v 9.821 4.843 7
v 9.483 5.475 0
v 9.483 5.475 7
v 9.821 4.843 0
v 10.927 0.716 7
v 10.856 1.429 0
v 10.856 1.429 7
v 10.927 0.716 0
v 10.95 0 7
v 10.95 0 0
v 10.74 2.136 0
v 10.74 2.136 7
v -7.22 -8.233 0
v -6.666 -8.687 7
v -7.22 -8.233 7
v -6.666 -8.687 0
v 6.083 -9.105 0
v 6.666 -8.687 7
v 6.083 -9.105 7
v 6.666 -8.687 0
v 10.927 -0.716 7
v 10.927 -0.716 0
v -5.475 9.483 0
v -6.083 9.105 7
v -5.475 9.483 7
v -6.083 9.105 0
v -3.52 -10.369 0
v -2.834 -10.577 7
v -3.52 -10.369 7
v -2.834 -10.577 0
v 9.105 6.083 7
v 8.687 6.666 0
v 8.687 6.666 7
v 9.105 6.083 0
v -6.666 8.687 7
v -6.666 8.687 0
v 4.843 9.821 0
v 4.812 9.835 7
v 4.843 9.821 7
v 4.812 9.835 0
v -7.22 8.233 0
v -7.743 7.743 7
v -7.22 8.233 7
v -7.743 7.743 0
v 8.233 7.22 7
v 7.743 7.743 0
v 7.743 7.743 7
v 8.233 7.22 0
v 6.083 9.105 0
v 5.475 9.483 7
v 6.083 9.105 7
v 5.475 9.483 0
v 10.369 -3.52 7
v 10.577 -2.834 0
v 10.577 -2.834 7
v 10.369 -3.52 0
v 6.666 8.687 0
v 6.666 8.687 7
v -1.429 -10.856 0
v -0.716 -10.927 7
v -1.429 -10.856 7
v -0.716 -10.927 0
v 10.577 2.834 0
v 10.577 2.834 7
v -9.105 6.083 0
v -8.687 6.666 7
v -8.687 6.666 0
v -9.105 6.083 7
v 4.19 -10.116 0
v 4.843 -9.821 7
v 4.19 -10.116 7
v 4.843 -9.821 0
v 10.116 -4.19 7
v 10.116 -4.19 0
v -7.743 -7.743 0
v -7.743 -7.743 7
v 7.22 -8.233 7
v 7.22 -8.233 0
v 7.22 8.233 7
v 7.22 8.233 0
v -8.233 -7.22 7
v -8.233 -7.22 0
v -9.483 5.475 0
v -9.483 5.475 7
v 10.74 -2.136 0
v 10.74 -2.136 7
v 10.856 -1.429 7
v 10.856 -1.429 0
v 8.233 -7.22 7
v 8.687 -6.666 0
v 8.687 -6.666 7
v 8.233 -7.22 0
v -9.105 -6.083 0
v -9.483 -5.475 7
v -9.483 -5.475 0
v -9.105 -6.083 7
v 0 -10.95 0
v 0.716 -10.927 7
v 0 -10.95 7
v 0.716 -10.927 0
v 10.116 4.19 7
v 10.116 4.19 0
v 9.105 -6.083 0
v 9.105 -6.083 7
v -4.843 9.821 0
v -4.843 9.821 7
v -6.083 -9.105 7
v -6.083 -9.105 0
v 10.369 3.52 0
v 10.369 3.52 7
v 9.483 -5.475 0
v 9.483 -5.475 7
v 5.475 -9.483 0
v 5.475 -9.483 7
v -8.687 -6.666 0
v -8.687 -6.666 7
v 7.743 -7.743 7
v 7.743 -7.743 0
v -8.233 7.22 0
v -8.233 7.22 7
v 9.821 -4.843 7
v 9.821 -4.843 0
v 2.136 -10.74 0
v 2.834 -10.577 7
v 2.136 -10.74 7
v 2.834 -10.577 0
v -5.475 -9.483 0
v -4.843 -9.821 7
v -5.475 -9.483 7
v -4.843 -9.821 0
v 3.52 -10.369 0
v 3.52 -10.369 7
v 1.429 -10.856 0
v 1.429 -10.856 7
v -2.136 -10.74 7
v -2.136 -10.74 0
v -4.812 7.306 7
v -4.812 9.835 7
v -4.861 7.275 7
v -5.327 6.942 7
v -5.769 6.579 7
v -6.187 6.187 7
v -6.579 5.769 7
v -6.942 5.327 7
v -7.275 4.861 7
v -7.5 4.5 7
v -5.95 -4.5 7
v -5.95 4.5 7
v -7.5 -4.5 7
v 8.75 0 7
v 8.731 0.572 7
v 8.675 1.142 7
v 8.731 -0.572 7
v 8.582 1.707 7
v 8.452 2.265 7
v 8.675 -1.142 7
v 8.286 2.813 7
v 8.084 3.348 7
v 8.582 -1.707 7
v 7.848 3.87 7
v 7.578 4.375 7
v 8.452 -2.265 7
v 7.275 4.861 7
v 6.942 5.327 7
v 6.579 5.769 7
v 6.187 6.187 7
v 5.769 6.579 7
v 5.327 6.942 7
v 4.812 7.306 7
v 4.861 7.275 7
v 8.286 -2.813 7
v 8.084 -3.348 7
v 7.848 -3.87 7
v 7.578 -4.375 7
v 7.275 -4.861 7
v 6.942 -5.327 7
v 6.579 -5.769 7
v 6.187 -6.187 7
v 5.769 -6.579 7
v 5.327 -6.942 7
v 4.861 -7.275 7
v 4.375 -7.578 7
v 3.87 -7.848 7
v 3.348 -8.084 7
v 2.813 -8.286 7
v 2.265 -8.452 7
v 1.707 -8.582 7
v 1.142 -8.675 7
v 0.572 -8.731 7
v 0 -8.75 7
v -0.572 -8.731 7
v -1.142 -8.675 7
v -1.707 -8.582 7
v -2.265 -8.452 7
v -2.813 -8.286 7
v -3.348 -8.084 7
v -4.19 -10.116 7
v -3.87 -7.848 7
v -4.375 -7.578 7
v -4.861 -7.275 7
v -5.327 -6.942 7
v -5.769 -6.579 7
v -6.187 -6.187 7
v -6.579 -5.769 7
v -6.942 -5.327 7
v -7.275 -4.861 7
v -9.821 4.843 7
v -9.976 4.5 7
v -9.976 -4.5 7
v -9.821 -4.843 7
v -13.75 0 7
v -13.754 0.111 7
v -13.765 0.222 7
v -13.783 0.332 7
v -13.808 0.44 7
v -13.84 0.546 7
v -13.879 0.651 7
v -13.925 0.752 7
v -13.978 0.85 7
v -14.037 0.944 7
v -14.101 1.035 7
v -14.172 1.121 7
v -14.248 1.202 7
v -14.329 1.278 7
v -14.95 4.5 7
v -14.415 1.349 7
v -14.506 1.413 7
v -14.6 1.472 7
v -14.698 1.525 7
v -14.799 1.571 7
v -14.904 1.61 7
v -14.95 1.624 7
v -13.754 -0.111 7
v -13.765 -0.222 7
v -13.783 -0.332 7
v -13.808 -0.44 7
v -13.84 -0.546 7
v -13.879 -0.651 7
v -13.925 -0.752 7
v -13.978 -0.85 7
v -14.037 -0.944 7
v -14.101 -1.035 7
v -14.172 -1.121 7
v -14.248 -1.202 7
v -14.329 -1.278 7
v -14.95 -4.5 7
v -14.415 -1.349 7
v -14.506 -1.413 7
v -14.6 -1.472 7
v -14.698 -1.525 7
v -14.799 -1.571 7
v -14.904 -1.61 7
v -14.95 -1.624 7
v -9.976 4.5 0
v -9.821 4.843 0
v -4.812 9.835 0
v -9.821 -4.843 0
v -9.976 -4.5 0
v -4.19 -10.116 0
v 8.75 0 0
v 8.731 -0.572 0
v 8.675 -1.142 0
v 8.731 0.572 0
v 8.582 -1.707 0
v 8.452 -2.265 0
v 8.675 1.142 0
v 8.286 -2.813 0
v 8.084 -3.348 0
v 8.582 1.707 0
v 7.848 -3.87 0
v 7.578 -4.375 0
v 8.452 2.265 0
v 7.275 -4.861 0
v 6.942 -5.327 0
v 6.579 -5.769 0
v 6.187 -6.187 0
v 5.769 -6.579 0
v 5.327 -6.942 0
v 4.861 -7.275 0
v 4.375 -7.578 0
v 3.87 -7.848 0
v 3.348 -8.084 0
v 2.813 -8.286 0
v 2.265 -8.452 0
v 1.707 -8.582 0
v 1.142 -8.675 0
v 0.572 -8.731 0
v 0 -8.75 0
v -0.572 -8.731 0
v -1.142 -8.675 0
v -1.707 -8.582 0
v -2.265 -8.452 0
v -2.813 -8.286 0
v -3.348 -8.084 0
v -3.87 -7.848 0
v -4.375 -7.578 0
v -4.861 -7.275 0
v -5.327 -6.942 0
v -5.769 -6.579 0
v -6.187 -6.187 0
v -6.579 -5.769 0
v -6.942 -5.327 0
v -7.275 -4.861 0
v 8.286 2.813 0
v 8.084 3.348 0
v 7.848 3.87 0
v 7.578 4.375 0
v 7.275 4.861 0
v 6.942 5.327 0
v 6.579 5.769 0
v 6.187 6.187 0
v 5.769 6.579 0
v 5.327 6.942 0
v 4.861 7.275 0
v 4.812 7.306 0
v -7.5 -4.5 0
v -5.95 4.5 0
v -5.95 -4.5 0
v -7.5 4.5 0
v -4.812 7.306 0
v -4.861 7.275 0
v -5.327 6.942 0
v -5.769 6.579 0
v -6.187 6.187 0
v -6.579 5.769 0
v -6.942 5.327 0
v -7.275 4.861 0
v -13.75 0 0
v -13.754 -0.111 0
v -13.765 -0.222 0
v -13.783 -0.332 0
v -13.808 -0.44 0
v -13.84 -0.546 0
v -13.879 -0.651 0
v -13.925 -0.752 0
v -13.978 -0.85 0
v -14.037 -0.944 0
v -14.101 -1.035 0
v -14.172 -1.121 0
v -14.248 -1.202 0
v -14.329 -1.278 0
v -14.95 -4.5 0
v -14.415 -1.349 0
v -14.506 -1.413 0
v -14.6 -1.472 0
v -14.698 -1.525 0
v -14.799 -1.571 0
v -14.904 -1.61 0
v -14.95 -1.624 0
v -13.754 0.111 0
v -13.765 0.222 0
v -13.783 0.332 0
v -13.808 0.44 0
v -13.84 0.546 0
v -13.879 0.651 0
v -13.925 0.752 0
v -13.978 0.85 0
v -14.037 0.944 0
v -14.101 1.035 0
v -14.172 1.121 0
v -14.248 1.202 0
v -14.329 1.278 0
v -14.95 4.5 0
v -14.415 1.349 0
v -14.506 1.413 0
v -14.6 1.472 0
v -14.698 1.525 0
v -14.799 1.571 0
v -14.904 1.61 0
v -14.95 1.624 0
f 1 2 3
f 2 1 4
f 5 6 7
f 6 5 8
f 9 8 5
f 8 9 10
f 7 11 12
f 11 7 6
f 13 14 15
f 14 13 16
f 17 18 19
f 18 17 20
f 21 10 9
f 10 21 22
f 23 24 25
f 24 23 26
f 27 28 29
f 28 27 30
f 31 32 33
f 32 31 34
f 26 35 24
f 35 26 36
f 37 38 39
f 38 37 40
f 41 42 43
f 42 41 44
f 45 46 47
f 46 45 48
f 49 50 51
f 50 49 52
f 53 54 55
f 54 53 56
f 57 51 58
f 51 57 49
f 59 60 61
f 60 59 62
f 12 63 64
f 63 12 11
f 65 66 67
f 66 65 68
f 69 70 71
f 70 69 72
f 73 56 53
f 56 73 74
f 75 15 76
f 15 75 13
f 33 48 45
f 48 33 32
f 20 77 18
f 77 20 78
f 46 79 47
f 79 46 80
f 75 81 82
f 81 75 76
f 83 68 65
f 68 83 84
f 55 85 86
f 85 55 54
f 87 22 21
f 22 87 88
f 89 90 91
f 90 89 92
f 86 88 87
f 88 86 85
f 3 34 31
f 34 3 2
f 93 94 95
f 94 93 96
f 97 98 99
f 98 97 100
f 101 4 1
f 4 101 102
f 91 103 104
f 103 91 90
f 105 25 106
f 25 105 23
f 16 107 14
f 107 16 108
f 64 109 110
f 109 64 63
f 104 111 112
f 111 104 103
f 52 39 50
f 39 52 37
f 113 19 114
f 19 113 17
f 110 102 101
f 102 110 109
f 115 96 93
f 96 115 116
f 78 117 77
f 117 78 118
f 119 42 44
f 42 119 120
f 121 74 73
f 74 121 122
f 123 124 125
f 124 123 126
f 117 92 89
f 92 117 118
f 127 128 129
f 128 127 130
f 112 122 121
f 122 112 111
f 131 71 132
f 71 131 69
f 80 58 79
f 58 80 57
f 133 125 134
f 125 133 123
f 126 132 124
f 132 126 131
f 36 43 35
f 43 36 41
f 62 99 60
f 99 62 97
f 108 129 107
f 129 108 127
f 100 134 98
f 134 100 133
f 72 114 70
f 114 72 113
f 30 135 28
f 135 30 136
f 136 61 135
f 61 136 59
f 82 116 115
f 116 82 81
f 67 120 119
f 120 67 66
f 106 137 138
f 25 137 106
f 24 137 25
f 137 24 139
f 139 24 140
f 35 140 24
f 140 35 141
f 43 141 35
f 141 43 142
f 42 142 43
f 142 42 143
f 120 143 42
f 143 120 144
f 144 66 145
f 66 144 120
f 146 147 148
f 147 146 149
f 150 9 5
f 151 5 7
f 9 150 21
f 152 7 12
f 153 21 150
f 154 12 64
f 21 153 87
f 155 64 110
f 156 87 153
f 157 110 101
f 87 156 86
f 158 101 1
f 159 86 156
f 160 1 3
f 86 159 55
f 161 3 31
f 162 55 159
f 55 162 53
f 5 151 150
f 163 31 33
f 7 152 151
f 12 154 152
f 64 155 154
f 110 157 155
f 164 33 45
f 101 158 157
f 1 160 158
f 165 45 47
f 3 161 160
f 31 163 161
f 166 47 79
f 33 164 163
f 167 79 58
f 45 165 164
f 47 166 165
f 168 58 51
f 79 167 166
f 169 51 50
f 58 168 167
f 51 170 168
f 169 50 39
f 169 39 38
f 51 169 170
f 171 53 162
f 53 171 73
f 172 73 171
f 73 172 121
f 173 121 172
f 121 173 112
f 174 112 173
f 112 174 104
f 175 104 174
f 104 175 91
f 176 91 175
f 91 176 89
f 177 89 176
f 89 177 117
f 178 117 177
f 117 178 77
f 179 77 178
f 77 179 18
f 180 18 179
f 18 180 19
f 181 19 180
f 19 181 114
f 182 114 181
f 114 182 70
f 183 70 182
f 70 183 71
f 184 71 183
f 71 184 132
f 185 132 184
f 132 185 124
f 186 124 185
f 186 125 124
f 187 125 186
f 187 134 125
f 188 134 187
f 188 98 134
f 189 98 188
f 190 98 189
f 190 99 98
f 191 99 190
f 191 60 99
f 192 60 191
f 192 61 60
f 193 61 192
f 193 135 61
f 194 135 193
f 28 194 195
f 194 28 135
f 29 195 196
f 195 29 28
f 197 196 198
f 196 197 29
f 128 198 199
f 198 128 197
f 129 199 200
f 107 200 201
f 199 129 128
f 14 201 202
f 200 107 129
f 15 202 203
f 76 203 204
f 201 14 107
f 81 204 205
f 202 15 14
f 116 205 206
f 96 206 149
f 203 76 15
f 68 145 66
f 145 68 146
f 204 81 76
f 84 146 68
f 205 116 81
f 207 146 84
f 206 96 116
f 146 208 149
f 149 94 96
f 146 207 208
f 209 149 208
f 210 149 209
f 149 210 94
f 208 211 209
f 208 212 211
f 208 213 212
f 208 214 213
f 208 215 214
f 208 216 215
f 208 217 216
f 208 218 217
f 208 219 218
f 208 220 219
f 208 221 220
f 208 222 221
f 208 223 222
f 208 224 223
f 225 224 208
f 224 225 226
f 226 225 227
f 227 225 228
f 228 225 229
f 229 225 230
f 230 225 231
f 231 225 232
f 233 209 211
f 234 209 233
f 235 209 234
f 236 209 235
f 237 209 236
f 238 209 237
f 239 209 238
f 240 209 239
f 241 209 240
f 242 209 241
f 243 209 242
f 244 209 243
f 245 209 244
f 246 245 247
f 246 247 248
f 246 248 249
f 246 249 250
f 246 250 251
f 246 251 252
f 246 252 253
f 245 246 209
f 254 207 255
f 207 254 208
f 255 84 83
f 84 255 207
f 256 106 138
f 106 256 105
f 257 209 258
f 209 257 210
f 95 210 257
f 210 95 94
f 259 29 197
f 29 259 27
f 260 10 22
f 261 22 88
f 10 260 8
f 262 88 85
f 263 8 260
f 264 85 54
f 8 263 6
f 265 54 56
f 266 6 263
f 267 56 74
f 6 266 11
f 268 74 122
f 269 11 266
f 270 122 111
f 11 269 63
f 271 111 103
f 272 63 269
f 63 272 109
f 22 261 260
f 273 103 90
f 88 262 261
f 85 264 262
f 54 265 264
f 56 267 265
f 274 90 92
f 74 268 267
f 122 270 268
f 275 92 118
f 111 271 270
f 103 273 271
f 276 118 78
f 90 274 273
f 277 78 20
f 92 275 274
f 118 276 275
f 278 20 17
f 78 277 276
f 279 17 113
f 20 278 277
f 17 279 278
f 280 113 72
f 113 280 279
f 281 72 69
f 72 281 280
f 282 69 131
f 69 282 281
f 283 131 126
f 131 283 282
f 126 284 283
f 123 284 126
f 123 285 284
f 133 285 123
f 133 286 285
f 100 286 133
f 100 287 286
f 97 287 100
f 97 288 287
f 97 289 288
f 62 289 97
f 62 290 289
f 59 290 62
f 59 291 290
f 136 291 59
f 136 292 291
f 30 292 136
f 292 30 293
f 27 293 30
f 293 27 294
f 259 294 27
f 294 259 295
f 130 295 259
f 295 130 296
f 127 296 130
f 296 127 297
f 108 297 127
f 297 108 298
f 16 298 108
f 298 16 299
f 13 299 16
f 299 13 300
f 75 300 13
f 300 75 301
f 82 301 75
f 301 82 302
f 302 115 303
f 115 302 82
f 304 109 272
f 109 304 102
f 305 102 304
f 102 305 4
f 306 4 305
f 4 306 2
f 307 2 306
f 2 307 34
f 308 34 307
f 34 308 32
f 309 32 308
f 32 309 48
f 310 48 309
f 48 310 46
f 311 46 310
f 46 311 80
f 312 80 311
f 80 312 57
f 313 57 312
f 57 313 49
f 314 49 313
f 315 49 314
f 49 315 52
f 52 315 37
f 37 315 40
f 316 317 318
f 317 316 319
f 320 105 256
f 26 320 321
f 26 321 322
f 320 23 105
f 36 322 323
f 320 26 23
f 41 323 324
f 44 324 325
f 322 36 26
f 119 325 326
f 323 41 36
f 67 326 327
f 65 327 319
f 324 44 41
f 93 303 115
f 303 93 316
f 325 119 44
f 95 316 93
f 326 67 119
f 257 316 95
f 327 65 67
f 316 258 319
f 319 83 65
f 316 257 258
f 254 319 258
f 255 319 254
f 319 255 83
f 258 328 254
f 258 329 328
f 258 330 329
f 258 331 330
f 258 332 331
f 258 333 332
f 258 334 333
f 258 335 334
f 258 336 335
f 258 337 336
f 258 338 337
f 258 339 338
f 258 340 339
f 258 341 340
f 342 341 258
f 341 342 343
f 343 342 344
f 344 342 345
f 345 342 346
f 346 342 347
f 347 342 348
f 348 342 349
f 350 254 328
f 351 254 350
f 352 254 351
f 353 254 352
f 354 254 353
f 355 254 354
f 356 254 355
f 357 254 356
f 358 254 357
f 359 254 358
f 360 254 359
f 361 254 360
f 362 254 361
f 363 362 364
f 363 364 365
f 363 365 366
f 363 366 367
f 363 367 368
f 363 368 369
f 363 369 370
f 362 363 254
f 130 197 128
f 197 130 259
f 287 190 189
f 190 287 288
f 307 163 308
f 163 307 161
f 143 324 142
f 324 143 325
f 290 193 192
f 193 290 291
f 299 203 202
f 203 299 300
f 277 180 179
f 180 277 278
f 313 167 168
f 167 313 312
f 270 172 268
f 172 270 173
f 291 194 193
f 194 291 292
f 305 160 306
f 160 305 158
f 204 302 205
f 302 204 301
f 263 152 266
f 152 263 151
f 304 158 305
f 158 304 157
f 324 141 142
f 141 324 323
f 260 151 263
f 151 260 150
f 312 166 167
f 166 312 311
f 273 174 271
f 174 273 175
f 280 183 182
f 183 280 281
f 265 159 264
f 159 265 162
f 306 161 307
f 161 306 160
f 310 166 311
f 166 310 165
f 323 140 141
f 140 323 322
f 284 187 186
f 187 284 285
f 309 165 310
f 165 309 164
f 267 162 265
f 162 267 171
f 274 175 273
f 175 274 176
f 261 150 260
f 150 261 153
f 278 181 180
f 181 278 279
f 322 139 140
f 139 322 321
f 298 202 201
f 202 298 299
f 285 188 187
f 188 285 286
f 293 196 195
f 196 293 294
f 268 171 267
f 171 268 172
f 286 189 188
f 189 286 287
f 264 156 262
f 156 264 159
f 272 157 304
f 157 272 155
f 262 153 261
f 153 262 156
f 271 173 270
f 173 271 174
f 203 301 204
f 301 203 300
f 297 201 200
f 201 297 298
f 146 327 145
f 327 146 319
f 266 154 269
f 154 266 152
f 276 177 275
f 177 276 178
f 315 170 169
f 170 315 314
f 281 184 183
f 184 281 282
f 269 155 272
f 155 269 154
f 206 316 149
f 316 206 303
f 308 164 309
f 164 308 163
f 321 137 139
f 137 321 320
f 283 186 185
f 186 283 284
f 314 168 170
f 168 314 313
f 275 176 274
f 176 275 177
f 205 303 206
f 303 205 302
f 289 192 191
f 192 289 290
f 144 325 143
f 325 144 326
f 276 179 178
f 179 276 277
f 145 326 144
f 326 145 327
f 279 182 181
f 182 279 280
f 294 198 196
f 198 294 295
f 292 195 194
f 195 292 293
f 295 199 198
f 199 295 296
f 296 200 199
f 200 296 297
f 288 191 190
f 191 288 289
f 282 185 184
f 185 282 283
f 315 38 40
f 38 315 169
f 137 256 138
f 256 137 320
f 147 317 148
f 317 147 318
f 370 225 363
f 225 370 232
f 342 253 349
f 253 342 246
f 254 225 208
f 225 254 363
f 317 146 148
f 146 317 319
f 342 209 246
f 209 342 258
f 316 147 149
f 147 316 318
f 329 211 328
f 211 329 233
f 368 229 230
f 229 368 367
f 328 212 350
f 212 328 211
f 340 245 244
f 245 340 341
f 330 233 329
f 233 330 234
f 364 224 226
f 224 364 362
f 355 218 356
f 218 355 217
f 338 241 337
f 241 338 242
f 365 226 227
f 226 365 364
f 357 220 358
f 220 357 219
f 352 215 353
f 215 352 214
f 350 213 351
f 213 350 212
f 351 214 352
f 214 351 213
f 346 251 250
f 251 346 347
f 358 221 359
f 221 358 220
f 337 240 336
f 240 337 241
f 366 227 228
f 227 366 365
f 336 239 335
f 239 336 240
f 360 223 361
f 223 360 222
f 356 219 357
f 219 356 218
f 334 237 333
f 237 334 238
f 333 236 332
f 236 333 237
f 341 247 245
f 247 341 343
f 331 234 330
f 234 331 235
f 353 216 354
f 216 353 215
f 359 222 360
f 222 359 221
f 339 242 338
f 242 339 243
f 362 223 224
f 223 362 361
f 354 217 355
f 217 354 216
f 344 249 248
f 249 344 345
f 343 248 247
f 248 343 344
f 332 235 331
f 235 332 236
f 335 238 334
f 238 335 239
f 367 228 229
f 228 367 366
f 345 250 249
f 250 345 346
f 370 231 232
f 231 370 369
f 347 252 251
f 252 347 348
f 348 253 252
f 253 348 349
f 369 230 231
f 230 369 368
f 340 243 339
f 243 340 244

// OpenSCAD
// file: rocky_lib.scad
// =====================================================================
// Rocky - reusable geometry helpers
// =====================================================================
include <rocky_params.scad>

// ---- primitives ------------------------------------------------------

// Cylinder with a rounded (filleted) top edge.
module round_top_cyl(d, h, r) {
    hull() {
        cylinder(d = d, h = h - r);
        translate([0, 0, h - r]) rotate_extrude()
            translate([d/2 - r, 0]) circle(r = r);
        translate([0, 0, h - r]) cylinder(d = d - 2*r, h = r);
    }
}

// A 90-degree V ball race, cut into a flat face lying at z = 0.
//   dir = -1  groove sinks below the face  (use on an upward-facing race)
//   dir = +1  groove rises above the face  (use on a downward-facing race)
// Either way the flanks sit at 45 degrees, so it prints without support.
module race_groove(pitch_d = race_d, depth = race_groove_d, dir = -1) {
    rotate_extrude($fn = 200)
        polygon([[pitch_d/2 - depth, 0],
                 [pitch_d/2 + depth, 0],
                 [pitch_d/2,         dir * depth]]);
}

// The balls themselves, for assembly renders / interference checking.
module race_balls(pitch_d = race_d, n = ball_count, d = ball_d) {
    polar(n, pitch_d/2) sphere(d = d, $fn = 24);
}

// Countersunk / counterbored clearance hole for an M3 cap screw,
// drilled downward from z=0.
module m3_cbore(depth = 20, head_up = true) {
    translate([0, 0, -depth]) cylinder(d = m3_free, h = depth + eps);
    if (head_up) cylinder(d = m3_head, h = m3_head_h + eps);
}

// Blind pilot bore for a brass heat-set insert, opening upward from z=0.
module heatset(d = m3_insert_d, h = m3_insert_h) {
    cylinder(d = d, h = h);
    // lead-in chamfer so the insert starts straight
    translate([0, 0, -eps]) cylinder(d1 = d + 1.0, d2 = d, h = 0.8);
}

// A boss with a heat-set insert in the top.
module insert_boss(h, od = 8, d = m3_insert_d, ih = m3_insert_h) {
    difference() {
        cylinder(d = od, h = h);
        translate([0, 0, h - ih]) heatset(d, ih + eps);
    }
}

// ---- patterns --------------------------------------------------------

// Polar array about the Y axis, for anything arranged around Rocky's
// face (the face lies in the XZ plane, so Z-axis polar is wrong there).
module polar_y(n, r = 0, start = 0) {
    for (i = [0 : n - 1])
        rotate([0, start + i * 360 / n, 0]) translate([r, 0, 0]) children();
}

module polar(n, r = 0, start = 0) {
    for (i = [0 : n - 1])
        rotate([0, 0, start + i * 360 / n]) translate([r, 0, 0]) children();
}

// Vertical louvre slots cut through a cylindrical wall, as radial capsules.
// The cut starts just inside the wall's inner face and runs outward, so it
// pierces the wall without chewing into bosses standing behind it.
module vent_ring(d, z0, z1, count, w = vent_w, ang_span = 360, ang_start = 0,
                 t = wall) {
    r0 = d/2 - t - 0.6;   // stays inside the wall, clear of bosses behind it
    len = t + 4;
    for (i = [0 : count - 1])
        rotate([0, 0, ang_start + i * ang_span / count])
            hull() {
                translate([r0, 0, z0 + w/2]) rotate([0, 90, 0])
                    cylinder(d = w, h = len, $fn = 20);
                translate([r0, 0, z1 - w/2]) rotate([0, 90, 0])
                    cylinder(d = w, h = len, $fn = 20);
            }
}

// Radial grille of round holes, for the speaker.
module speaker_grille(d_open, t) {
    hole  = 2.6;
    pitch = 4.4;
    n = floor(d_open / pitch / 2);
    translate([0, 0, -eps]) cylinder(d = hole, h = t + 2*eps);
    for (ring = [1 : n]) {
        r = ring * pitch;
        cnt = max(6, floor(2 * 3.14159 * r / pitch));
        for (i = [0 : cnt - 1])
            rotate([0, 0, i * 360 / cnt]) translate([r, 0, -eps])
                if (r + hole/2 < d_open/2) cylinder(d = hole, h = t + 2*eps);
    }
}

// ---- component negatives --------------------------------------------

// Negative volume for a standard-size servo dropped in from above.
// Origin sits at the OUTPUT SHAFT AXIS, on the underside of the body.
// Set `ears` to also cut the mounting-ear pocket.
module servo_pocket(ears = true, lead_in = 30) {
    dx = sv_shaft_off;             // shaft is offset from the body centre
    // body, plus a lead-in column above it so the servo can drop in
    translate([-dx, 0, (sv_body_h + lead_in)/2 - eps])
        cube([sv_body_l + slop, sv_body_w + slop, sv_body_h + lead_in], center = true);
    if (ears)
        translate([-dx, 0, sv_flange_z + sv_flange_t/2])
            cube([sv_flange_l + slop, sv_body_w + slop, sv_flange_t + slop], center = true);
    // cable exit
    translate([-dx - sv_body_l/2 - 4, 0, sv_body_h * 0.45])
        cube([10, 8, 10], center = true);
}

// The two M2.5 screw holes in each servo mounting ear.
module servo_ear_holes(h = 10) {
    dx = sv_shaft_off;
    translate([-dx, 0, 0])
        for (x = [-sv_hole_dx/2, sv_hole_dx/2], y = [-sv_hole_dy/2, sv_hole_dy/2])
            translate([x, y, -h/2]) cylinder(d = sv_hole_d, h = h);
}

// Clearance for the servo output boss + a round horn recessed into a part.
module servo_horn_pocket(depth = sv_horn_t + 0.4) {
    cylinder(d = sv_horn_d + slop, h = depth);
    translate([0, 0, -sv_boss_h]) cylinder(d = sv_shaft_d + 2.5, h = sv_boss_h + eps);
    // four screw holes to bolt the horn to the driven part
    polar(4, 8) translate([0, 0, -8]) cylinder(d = 2.2, h = 20);
}

// Raspberry Pi 5 mounting hole pattern, centred on the board outline.
module pi_holes(h = 12, d = m25_insert_d) {
    for (x = [-pi_hole_dx/2, pi_hole_dx/2], y = [-pi_hole_dy/2, pi_hole_dy/2])
        translate([x, y, 0]) cylinder(d = d, h = h);
}

// Camera Module 3 hole pattern.
module cam_holes(h = 10, d = m2_insert_d) {
    for (x = [-cam_hole_dx/2, cam_hole_dx/2], y = [-cam_hole_dy/2, cam_hole_dy/2])
        translate([x, y, 0]) cylinder(d = d, h = h);
}

// Display carrier PCB hole pattern.
module disp_holes(h = 12, d = m25_insert_d) {
    for (x = [-disp_hole_dx/2, disp_hole_dx/2], y = [-disp_hole_dy/2, disp_hole_dy/2])
        translate([x, y, 0]) cylinder(d = d, h = h);
}
// main file
// =====================================================================
// Rocky | PART 09 | cable_clip
// P-clip for the pan-joint harness. Print four.
// PRINT: flat, as modelled.
// =====================================================================
include <rocky_params.scad>
use     <rocky_lib.scad>

clip_id = harness_d + 1.5;
clip_t  = 2.2;
h       = 7;

difference() {
    union() {
        difference() {
            cylinder(d = clip_id + 2*clip_t, h = h);
            translate([0, 0, -eps]) cylinder(d = clip_id, h = h + 2*eps);
            // opening so the harness can be pressed in
            translate([0, clip_id, h/2]) cube([clip_id * 0.55, clip_id * 2, h + 2], center = true);
        }
        translate([-(clip_id/2 + clip_t + 4), -4.5, 0]) cube([9, 9, h]);
    }
    translate([-(clip_id/2 + clip_t + 4.5), 0, -eps]) cylinder(d = m3_free, h = h + 2*eps);
}
